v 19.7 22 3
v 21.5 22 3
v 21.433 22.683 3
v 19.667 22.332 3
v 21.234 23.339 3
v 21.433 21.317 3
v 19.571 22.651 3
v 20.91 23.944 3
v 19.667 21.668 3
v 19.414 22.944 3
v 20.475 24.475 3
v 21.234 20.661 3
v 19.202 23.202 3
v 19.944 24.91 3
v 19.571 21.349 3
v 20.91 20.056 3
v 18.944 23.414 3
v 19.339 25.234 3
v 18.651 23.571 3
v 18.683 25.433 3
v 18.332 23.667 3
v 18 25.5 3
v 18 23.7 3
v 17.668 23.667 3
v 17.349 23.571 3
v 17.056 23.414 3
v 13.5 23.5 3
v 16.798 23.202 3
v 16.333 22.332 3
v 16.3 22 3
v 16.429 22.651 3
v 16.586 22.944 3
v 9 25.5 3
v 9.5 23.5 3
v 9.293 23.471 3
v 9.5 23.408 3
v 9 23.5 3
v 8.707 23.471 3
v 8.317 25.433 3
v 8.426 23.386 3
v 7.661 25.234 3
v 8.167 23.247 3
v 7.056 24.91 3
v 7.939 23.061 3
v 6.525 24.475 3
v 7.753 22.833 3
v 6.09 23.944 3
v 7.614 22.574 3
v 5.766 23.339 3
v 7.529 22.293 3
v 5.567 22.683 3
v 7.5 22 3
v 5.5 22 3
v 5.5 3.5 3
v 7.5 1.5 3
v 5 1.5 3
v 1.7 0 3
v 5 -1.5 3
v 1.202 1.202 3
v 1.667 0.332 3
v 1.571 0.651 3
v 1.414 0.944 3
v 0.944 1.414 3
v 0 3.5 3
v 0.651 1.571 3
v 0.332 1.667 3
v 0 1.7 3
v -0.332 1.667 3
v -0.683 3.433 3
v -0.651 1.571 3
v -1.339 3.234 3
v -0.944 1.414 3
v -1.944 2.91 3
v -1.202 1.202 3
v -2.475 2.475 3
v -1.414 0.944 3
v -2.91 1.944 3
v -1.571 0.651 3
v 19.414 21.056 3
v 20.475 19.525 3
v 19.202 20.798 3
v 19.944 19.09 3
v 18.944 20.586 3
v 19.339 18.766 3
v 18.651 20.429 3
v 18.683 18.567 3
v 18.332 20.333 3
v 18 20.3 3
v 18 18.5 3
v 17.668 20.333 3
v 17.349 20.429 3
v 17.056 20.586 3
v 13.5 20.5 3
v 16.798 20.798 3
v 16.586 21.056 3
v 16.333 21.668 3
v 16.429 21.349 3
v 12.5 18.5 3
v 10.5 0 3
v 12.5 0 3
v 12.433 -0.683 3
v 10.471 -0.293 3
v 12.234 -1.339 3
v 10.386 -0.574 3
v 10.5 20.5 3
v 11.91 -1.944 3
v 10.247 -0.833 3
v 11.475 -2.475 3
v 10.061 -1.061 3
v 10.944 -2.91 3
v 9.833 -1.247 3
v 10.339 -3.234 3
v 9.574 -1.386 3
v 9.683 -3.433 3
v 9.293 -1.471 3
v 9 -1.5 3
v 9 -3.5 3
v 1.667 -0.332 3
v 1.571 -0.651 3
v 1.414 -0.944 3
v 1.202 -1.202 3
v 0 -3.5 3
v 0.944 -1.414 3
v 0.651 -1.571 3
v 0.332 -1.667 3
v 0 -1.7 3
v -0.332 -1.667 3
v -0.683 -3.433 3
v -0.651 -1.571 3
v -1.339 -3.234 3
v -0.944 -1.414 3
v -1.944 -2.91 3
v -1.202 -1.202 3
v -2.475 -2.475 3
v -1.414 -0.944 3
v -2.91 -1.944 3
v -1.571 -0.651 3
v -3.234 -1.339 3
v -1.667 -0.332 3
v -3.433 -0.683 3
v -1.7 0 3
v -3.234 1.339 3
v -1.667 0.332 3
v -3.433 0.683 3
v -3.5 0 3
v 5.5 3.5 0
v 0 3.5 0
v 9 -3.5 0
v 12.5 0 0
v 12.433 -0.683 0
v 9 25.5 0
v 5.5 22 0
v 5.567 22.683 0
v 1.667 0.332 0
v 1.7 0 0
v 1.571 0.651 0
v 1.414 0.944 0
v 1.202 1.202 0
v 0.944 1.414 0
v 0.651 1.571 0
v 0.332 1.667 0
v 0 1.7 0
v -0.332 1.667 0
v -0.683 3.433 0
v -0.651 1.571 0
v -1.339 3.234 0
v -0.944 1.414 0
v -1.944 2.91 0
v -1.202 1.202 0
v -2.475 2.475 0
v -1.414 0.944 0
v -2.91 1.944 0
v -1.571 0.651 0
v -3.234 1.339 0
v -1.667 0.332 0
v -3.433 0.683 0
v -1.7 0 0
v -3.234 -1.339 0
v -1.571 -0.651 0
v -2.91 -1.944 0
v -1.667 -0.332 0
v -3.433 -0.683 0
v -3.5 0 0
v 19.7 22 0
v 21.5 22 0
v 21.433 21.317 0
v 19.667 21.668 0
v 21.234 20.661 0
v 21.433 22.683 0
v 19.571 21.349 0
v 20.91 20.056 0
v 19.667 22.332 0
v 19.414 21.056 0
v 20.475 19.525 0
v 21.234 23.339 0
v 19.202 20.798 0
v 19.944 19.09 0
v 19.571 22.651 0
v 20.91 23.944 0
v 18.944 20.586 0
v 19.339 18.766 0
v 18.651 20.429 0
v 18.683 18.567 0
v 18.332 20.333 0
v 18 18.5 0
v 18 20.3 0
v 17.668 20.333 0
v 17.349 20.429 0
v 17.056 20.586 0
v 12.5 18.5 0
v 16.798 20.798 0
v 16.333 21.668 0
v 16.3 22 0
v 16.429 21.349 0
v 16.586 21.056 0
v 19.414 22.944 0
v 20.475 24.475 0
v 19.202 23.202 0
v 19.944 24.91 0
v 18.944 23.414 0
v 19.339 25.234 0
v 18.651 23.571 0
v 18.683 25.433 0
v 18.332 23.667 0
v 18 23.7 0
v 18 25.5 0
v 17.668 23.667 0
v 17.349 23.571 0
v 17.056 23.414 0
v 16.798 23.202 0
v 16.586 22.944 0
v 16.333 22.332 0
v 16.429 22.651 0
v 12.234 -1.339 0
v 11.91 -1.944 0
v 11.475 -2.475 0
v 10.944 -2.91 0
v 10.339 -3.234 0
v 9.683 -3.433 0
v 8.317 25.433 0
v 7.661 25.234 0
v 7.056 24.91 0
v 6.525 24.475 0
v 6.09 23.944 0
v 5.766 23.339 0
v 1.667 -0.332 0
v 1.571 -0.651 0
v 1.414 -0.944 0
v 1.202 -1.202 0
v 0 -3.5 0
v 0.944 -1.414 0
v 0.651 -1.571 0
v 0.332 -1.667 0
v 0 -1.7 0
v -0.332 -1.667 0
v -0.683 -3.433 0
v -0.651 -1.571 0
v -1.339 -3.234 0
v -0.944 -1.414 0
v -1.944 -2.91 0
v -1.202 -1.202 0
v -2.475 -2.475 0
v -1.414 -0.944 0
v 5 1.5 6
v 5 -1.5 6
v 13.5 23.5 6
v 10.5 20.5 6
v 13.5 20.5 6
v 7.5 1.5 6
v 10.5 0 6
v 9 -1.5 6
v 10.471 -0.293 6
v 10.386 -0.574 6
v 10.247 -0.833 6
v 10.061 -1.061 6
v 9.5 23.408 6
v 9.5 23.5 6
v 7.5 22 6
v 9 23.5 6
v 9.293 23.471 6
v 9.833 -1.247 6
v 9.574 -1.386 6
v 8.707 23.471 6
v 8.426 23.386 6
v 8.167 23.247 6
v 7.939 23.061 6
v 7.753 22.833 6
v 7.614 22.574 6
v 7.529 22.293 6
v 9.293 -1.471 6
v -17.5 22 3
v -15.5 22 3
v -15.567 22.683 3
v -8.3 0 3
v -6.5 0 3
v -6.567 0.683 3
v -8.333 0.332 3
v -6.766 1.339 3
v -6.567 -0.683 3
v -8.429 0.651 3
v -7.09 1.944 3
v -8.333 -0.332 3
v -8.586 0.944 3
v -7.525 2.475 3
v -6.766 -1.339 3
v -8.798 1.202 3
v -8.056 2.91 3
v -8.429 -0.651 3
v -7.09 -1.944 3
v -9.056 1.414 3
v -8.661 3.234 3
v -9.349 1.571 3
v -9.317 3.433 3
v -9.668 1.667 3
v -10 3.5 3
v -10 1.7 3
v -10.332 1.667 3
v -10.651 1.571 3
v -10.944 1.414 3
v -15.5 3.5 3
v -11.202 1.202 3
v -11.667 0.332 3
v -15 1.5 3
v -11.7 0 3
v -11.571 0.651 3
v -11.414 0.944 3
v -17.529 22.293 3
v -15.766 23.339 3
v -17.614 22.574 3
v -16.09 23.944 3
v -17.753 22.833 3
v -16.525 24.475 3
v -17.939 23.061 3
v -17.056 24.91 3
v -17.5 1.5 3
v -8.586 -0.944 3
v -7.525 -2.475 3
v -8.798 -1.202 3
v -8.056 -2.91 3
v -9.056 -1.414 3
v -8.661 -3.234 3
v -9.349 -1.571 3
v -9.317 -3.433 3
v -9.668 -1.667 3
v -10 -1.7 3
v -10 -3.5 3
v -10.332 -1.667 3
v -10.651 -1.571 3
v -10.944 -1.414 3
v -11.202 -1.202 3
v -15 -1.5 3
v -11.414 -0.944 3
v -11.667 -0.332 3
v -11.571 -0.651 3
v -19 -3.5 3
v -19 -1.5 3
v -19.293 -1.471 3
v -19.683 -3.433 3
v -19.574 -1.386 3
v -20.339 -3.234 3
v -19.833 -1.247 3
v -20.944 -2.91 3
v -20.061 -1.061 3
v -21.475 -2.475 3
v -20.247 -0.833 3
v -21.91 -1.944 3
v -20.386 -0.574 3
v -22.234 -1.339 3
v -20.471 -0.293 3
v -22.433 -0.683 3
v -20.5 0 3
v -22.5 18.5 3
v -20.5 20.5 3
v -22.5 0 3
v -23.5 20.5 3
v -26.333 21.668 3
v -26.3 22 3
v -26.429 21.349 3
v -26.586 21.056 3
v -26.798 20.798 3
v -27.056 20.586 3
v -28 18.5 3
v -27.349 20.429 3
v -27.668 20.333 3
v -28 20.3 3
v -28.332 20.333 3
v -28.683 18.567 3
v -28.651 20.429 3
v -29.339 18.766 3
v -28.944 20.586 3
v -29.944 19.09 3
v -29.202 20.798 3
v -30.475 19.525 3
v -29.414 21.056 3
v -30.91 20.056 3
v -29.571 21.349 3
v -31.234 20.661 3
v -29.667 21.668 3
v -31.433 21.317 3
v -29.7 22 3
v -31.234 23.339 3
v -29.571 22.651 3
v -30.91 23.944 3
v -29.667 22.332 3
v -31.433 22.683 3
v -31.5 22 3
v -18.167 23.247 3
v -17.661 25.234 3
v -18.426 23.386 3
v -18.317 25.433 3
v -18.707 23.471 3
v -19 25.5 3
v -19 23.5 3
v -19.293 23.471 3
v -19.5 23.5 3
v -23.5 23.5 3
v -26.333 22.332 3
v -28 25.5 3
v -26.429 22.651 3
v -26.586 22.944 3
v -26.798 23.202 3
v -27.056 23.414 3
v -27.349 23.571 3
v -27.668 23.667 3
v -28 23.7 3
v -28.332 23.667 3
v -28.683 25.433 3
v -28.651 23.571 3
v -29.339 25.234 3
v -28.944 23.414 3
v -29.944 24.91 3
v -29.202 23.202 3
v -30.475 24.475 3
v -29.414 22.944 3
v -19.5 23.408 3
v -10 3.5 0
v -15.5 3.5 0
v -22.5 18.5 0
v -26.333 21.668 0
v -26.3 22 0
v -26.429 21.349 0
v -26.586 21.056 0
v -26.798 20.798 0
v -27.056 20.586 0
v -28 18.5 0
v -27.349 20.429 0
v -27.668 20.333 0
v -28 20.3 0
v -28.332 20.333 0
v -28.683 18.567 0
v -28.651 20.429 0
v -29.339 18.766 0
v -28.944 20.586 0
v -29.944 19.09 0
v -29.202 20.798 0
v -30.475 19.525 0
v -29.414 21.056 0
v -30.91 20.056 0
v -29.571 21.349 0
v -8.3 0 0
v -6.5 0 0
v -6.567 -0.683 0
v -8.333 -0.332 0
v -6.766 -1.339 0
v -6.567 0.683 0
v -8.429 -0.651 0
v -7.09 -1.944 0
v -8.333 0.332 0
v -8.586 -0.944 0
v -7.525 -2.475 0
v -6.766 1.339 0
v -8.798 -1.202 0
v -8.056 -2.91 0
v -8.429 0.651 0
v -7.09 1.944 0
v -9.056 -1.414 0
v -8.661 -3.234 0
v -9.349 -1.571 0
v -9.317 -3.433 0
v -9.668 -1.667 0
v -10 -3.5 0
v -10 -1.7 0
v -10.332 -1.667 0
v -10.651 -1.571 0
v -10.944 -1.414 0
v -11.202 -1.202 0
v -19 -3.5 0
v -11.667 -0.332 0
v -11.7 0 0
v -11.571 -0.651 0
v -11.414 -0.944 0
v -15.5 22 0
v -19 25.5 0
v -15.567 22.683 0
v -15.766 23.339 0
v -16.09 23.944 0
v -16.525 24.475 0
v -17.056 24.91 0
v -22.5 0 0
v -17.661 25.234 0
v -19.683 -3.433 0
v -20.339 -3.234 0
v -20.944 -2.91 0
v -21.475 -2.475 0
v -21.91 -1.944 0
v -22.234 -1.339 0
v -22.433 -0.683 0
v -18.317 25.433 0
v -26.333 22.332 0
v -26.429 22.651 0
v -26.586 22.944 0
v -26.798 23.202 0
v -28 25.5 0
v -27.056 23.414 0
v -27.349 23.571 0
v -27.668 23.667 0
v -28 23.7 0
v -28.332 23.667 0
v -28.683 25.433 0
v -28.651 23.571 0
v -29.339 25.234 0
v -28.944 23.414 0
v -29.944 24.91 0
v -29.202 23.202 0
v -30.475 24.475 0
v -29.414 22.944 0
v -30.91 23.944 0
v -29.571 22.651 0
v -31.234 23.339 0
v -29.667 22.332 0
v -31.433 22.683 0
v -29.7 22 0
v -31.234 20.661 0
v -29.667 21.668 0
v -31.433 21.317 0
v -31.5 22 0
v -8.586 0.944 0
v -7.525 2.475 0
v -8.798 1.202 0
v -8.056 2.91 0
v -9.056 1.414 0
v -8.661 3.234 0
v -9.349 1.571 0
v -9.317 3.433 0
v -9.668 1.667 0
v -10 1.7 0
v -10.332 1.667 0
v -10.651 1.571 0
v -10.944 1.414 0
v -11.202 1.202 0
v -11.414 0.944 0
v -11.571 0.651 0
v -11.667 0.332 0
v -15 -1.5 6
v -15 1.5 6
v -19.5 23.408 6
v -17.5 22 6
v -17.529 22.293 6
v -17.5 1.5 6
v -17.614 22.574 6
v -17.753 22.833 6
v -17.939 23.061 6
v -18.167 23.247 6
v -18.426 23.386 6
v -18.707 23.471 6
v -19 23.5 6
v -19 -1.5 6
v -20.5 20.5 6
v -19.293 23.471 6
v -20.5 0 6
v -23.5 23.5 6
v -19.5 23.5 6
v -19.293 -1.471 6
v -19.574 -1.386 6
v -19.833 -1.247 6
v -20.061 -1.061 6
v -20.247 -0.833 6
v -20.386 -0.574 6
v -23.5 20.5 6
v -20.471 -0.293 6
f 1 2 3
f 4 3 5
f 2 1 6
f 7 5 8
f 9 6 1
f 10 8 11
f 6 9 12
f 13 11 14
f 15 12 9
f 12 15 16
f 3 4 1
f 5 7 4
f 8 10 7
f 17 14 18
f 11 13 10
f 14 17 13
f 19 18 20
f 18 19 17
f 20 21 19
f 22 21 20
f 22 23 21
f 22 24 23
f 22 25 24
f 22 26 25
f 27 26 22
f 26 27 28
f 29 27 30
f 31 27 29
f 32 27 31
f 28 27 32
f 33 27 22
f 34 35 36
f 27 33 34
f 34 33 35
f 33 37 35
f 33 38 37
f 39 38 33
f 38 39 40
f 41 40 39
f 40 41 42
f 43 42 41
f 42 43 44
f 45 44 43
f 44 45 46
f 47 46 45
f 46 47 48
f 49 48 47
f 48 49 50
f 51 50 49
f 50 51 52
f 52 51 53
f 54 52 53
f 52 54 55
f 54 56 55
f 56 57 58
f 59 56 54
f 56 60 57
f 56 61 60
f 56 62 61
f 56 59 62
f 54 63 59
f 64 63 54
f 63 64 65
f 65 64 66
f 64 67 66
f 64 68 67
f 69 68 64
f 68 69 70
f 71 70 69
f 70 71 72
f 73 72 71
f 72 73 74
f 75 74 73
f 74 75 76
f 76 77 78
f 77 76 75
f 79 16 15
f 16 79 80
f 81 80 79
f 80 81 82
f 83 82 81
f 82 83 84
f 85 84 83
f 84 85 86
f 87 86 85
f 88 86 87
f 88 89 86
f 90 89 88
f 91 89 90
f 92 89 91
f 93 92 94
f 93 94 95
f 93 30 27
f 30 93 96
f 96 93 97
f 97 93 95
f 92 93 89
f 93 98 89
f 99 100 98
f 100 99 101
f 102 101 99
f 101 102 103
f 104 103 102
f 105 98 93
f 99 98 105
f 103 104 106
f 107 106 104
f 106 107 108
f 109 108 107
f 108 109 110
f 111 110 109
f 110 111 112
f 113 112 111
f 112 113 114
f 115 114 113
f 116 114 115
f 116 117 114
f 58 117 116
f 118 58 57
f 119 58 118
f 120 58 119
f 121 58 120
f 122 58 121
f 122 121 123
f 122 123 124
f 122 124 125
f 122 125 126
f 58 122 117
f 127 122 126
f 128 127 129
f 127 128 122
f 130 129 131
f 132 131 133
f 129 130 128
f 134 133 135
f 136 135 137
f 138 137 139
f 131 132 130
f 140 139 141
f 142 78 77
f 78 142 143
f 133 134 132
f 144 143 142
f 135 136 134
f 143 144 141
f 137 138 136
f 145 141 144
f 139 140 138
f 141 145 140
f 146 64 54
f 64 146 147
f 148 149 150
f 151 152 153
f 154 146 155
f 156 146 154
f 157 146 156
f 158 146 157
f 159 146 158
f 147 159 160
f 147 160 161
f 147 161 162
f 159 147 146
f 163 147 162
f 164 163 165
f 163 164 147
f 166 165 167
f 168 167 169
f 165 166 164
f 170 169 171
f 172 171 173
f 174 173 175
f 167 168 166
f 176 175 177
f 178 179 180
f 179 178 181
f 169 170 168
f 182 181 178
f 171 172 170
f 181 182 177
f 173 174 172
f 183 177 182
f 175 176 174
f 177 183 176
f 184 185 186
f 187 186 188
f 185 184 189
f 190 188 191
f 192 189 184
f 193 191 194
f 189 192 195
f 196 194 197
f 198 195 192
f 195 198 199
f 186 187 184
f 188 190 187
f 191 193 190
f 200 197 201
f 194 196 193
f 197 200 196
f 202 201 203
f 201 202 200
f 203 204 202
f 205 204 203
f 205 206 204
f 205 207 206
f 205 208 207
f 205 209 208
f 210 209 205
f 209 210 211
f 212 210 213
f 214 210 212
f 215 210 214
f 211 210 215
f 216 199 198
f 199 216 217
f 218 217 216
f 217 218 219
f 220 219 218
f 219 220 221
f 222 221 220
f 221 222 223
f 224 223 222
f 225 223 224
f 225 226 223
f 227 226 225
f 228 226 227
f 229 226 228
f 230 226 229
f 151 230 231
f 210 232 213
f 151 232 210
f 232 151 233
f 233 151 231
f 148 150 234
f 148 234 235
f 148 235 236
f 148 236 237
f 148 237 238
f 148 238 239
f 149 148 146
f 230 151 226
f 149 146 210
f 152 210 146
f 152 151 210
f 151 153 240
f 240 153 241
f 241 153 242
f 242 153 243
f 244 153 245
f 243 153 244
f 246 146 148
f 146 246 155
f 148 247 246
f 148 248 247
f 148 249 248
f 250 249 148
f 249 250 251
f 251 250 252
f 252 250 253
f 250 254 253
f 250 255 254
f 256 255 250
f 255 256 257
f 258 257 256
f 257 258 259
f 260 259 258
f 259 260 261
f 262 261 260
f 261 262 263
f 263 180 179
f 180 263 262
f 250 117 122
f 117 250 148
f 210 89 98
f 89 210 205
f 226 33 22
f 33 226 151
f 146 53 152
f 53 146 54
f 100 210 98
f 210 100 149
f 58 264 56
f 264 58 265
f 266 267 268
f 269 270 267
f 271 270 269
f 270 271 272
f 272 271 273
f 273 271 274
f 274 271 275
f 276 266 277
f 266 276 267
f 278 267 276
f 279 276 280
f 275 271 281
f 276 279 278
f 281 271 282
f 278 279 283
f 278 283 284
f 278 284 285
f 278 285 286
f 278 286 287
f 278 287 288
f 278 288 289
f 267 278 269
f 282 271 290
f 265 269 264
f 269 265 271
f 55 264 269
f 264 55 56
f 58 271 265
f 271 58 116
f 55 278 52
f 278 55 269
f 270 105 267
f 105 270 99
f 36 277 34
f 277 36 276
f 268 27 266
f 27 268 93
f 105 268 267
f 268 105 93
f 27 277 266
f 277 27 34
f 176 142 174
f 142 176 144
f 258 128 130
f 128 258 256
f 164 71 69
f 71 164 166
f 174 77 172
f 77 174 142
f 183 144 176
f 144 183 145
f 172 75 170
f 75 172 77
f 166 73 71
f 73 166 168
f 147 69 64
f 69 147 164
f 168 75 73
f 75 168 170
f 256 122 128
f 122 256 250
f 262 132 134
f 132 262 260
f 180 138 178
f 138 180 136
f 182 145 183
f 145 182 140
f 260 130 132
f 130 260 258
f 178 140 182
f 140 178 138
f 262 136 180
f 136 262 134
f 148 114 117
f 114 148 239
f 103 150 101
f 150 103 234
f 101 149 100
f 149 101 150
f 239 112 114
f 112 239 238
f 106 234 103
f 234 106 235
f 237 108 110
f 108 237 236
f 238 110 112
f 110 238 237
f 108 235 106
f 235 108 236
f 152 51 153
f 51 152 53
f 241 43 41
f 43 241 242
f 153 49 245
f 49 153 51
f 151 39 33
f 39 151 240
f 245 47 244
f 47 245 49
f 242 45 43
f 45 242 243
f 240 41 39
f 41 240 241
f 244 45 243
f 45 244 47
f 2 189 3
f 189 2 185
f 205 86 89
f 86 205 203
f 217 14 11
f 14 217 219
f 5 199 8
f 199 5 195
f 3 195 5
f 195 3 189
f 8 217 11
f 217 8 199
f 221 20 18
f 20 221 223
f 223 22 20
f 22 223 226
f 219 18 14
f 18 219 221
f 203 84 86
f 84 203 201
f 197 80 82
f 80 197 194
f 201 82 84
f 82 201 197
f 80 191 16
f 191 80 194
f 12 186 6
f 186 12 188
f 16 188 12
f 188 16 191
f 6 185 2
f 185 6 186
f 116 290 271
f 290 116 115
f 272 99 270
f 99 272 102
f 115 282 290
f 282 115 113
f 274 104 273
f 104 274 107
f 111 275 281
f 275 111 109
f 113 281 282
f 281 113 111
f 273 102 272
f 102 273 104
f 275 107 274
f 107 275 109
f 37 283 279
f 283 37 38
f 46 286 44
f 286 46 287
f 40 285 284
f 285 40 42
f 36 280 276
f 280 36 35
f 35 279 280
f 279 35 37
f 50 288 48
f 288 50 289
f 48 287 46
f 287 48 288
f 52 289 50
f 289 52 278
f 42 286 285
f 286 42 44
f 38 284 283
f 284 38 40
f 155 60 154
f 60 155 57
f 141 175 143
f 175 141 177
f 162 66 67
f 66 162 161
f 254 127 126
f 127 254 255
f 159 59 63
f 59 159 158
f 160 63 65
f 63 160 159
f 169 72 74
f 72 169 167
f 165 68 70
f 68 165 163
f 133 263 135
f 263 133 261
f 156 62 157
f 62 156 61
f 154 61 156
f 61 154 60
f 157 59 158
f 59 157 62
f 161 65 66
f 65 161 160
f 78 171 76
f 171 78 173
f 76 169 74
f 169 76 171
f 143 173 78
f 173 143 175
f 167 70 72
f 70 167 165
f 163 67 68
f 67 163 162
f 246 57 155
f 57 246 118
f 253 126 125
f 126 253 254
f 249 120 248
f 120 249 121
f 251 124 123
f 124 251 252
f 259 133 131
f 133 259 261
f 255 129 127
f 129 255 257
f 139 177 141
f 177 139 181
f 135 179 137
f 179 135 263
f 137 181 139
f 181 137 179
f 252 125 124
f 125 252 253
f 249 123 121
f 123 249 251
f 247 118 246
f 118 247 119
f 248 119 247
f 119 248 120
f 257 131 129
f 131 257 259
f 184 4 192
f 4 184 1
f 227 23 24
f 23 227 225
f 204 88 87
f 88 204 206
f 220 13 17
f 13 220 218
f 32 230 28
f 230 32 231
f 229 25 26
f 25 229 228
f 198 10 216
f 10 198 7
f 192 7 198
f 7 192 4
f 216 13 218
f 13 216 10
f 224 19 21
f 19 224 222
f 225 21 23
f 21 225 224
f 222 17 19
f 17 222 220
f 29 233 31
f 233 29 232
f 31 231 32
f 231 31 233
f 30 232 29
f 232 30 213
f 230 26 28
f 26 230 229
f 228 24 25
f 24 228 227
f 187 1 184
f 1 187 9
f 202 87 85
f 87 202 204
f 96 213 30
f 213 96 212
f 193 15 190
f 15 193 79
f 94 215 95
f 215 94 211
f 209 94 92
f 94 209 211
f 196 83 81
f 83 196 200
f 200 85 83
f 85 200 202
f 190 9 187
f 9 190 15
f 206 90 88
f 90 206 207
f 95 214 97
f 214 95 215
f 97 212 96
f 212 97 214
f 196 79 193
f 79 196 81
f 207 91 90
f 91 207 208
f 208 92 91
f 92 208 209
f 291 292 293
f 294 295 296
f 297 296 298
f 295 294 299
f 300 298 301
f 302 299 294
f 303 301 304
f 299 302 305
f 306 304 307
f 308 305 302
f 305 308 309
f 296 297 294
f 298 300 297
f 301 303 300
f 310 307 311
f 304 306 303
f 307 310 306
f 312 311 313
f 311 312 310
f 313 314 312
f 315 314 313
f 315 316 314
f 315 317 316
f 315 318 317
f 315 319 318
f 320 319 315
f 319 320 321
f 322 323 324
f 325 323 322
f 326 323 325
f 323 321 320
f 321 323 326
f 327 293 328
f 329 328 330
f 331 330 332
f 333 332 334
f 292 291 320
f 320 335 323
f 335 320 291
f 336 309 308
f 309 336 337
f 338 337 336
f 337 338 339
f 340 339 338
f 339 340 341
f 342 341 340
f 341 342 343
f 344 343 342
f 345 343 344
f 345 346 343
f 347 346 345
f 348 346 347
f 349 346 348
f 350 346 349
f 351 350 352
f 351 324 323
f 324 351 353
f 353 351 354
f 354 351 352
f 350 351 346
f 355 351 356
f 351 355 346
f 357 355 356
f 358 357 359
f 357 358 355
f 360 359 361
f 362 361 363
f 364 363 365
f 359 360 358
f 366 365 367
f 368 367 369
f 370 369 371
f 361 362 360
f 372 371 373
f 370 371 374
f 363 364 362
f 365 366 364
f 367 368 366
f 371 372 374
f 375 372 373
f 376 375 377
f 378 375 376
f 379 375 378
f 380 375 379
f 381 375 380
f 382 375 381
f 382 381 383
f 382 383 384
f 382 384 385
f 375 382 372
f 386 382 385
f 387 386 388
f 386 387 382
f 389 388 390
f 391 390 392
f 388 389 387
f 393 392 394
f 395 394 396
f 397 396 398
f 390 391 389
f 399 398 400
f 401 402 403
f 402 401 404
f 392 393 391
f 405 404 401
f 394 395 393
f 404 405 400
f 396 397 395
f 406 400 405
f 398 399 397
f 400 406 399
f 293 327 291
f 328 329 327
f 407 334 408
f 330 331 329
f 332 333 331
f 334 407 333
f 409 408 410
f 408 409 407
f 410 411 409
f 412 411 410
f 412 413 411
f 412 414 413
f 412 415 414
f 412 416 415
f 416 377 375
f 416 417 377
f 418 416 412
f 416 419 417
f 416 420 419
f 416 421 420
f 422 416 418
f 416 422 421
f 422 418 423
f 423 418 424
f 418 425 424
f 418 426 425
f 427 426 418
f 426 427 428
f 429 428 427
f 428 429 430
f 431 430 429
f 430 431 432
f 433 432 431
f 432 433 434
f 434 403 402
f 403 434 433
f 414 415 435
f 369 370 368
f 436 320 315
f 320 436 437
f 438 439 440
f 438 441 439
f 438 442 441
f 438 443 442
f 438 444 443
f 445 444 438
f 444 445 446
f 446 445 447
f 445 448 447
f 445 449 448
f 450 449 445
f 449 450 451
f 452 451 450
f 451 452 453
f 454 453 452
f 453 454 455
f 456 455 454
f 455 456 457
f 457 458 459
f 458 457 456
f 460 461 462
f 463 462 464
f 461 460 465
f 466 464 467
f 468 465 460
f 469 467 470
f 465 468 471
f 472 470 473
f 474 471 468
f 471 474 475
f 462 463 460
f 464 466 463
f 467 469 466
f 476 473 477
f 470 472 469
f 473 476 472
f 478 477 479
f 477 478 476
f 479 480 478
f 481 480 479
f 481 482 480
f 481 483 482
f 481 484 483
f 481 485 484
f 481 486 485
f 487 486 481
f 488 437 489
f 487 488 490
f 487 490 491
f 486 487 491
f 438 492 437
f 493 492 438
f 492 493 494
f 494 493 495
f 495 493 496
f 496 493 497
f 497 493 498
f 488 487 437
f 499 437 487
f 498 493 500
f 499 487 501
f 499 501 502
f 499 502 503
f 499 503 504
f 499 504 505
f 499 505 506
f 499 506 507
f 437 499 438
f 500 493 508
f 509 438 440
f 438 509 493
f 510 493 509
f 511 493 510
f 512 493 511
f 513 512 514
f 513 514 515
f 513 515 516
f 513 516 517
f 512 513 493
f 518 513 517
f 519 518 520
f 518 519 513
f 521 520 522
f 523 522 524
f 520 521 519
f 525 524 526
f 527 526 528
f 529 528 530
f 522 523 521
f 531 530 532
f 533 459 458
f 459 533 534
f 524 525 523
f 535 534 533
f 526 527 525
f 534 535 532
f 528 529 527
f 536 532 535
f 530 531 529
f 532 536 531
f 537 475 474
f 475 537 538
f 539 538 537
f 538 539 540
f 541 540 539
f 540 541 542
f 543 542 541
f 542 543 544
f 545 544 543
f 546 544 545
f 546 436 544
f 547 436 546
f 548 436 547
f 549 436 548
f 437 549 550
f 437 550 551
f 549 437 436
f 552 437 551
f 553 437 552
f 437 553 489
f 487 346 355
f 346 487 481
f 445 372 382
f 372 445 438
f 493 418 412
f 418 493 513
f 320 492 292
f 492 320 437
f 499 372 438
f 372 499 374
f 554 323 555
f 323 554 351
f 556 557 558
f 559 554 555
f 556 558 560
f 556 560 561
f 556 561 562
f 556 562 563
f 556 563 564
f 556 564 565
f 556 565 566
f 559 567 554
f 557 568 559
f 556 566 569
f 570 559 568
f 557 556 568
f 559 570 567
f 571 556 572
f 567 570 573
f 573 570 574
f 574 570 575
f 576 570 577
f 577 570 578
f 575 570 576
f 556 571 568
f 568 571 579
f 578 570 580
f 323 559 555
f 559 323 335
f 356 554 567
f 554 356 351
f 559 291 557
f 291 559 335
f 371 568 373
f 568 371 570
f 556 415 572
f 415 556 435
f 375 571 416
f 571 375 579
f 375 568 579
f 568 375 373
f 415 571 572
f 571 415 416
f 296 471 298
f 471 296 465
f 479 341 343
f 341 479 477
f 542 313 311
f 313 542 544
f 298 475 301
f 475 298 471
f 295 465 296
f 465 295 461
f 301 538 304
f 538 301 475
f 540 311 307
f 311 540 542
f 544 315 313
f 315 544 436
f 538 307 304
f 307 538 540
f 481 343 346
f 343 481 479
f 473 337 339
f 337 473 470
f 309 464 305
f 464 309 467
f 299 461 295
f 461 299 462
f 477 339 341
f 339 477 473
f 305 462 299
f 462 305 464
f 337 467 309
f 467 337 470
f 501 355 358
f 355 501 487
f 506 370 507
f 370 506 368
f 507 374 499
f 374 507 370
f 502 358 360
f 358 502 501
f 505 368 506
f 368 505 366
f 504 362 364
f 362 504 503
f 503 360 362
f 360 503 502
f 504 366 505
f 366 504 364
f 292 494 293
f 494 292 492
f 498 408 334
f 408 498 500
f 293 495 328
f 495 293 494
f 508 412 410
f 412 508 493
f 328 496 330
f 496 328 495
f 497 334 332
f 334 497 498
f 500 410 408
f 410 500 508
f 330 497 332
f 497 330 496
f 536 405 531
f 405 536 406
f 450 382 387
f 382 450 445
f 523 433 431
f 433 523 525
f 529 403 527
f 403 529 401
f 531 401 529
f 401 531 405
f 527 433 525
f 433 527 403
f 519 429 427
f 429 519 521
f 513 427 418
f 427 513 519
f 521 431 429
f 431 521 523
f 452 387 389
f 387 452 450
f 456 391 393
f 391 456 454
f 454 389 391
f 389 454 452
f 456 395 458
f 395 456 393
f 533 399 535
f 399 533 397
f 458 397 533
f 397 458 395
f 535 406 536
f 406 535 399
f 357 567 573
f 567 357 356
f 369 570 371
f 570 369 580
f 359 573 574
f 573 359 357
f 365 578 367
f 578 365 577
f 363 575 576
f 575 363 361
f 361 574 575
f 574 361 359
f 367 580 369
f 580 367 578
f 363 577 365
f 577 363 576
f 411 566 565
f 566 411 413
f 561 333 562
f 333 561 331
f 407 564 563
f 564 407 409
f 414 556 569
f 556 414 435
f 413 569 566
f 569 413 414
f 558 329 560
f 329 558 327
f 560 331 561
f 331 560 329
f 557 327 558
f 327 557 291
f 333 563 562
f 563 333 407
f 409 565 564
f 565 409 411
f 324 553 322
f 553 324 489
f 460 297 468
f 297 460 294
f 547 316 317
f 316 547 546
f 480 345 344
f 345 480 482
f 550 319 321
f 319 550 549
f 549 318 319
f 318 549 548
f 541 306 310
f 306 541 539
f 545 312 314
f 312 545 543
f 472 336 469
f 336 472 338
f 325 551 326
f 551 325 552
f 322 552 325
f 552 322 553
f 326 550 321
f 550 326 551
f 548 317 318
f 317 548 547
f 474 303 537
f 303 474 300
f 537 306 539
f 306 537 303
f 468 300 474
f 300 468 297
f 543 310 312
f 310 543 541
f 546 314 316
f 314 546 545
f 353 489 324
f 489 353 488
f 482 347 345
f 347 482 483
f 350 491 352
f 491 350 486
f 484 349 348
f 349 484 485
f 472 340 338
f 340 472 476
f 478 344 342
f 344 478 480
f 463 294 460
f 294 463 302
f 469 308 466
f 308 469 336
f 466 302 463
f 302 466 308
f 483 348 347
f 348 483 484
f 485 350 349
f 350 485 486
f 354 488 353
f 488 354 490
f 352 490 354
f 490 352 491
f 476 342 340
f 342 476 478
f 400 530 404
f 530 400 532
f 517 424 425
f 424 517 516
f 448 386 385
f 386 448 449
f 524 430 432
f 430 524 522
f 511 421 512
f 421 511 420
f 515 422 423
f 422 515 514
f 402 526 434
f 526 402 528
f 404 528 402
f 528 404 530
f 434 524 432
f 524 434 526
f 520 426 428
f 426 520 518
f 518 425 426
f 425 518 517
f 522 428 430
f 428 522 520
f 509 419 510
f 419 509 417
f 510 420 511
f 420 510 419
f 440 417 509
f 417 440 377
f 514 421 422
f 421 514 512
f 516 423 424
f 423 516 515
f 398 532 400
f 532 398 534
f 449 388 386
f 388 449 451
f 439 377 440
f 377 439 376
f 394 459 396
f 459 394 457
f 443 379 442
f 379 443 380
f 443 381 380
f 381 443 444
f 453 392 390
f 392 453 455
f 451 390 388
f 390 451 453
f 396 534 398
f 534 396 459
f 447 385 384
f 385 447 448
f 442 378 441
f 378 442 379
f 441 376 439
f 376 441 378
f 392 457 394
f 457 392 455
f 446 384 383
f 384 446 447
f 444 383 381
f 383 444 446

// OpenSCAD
//-- arm1_z_shape_1a.scad by AndrewBCN - April 2015
//-- remix of thing #154834
//-- replaces Brazo.stl with slightly stronger part
//-- and with source file.
//-- GPL V3

arm_th=3;
len1=9;
len2=20+2;
arm_wi=7;
$fn=32;

//-- this arm variant is shaped like a Z - useful in some cases

module arm() {
  difference() {
    // arm
    union() {
      // arm straight blocks
      translate([len1/2,0,arm_th/2]) cube([len1,arm_wi,arm_th], center=true);
      translate([1.5*len1,len2,arm_th/2]) cube([len1,arm_wi,arm_th], center=true);
      // long one
      translate([len1,len2/2,arm_th/2]) cube([arm_wi,len2,arm_th], center=true);
      // this is the small reinforcement in the middle
      translate([len1-2,0,1.5*arm_th]) cube([len1-5,arm_th,arm_th], center=true);
      translate([len1,len2/2,1.5*arm_th]) cube([arm_th,len2,arm_th], center=true);
      translate([1.5*len1-2,len2,1.5*arm_th]) cube([len1-5,arm_th,arm_th], center=true);
      // the two rounded ends and the two rounded corners
      translate([0,0,arm_th/2]) cylinder(r=arm_wi/2, h=arm_th, center=true);
      translate([len1,0,arm_th/2]) cylinder(r=arm_wi/2, h=arm_th, center=true);
      translate([len1,len2,arm_th/2]) cylinder(r=arm_wi/2, h=arm_th, center=true);
      translate([2*len1,len2,arm_th/2]) cylinder(r=arm_wi/2, h=arm_th, center=true);
      // reinforcement rounded corners
      translate([len1,0,1.5*arm_th]) cylinder(r=arm_th/2, h=arm_th, center=true);
      translate([len1,len2,1.5*arm_th]) cylinder(r=arm_th/2, h=arm_th, center=true);
    }
    // holes
    cylinder(r=3.4/2, h=3*arm_th, center=true);
    translate([9+len1,len2,0]) cylinder(r=3.4/2, h=3*arm_th, center=true);
  }
}

// build two mirrored copies
arm();
translate([-10,0,0]) mirror([1,0,0]) arm();
